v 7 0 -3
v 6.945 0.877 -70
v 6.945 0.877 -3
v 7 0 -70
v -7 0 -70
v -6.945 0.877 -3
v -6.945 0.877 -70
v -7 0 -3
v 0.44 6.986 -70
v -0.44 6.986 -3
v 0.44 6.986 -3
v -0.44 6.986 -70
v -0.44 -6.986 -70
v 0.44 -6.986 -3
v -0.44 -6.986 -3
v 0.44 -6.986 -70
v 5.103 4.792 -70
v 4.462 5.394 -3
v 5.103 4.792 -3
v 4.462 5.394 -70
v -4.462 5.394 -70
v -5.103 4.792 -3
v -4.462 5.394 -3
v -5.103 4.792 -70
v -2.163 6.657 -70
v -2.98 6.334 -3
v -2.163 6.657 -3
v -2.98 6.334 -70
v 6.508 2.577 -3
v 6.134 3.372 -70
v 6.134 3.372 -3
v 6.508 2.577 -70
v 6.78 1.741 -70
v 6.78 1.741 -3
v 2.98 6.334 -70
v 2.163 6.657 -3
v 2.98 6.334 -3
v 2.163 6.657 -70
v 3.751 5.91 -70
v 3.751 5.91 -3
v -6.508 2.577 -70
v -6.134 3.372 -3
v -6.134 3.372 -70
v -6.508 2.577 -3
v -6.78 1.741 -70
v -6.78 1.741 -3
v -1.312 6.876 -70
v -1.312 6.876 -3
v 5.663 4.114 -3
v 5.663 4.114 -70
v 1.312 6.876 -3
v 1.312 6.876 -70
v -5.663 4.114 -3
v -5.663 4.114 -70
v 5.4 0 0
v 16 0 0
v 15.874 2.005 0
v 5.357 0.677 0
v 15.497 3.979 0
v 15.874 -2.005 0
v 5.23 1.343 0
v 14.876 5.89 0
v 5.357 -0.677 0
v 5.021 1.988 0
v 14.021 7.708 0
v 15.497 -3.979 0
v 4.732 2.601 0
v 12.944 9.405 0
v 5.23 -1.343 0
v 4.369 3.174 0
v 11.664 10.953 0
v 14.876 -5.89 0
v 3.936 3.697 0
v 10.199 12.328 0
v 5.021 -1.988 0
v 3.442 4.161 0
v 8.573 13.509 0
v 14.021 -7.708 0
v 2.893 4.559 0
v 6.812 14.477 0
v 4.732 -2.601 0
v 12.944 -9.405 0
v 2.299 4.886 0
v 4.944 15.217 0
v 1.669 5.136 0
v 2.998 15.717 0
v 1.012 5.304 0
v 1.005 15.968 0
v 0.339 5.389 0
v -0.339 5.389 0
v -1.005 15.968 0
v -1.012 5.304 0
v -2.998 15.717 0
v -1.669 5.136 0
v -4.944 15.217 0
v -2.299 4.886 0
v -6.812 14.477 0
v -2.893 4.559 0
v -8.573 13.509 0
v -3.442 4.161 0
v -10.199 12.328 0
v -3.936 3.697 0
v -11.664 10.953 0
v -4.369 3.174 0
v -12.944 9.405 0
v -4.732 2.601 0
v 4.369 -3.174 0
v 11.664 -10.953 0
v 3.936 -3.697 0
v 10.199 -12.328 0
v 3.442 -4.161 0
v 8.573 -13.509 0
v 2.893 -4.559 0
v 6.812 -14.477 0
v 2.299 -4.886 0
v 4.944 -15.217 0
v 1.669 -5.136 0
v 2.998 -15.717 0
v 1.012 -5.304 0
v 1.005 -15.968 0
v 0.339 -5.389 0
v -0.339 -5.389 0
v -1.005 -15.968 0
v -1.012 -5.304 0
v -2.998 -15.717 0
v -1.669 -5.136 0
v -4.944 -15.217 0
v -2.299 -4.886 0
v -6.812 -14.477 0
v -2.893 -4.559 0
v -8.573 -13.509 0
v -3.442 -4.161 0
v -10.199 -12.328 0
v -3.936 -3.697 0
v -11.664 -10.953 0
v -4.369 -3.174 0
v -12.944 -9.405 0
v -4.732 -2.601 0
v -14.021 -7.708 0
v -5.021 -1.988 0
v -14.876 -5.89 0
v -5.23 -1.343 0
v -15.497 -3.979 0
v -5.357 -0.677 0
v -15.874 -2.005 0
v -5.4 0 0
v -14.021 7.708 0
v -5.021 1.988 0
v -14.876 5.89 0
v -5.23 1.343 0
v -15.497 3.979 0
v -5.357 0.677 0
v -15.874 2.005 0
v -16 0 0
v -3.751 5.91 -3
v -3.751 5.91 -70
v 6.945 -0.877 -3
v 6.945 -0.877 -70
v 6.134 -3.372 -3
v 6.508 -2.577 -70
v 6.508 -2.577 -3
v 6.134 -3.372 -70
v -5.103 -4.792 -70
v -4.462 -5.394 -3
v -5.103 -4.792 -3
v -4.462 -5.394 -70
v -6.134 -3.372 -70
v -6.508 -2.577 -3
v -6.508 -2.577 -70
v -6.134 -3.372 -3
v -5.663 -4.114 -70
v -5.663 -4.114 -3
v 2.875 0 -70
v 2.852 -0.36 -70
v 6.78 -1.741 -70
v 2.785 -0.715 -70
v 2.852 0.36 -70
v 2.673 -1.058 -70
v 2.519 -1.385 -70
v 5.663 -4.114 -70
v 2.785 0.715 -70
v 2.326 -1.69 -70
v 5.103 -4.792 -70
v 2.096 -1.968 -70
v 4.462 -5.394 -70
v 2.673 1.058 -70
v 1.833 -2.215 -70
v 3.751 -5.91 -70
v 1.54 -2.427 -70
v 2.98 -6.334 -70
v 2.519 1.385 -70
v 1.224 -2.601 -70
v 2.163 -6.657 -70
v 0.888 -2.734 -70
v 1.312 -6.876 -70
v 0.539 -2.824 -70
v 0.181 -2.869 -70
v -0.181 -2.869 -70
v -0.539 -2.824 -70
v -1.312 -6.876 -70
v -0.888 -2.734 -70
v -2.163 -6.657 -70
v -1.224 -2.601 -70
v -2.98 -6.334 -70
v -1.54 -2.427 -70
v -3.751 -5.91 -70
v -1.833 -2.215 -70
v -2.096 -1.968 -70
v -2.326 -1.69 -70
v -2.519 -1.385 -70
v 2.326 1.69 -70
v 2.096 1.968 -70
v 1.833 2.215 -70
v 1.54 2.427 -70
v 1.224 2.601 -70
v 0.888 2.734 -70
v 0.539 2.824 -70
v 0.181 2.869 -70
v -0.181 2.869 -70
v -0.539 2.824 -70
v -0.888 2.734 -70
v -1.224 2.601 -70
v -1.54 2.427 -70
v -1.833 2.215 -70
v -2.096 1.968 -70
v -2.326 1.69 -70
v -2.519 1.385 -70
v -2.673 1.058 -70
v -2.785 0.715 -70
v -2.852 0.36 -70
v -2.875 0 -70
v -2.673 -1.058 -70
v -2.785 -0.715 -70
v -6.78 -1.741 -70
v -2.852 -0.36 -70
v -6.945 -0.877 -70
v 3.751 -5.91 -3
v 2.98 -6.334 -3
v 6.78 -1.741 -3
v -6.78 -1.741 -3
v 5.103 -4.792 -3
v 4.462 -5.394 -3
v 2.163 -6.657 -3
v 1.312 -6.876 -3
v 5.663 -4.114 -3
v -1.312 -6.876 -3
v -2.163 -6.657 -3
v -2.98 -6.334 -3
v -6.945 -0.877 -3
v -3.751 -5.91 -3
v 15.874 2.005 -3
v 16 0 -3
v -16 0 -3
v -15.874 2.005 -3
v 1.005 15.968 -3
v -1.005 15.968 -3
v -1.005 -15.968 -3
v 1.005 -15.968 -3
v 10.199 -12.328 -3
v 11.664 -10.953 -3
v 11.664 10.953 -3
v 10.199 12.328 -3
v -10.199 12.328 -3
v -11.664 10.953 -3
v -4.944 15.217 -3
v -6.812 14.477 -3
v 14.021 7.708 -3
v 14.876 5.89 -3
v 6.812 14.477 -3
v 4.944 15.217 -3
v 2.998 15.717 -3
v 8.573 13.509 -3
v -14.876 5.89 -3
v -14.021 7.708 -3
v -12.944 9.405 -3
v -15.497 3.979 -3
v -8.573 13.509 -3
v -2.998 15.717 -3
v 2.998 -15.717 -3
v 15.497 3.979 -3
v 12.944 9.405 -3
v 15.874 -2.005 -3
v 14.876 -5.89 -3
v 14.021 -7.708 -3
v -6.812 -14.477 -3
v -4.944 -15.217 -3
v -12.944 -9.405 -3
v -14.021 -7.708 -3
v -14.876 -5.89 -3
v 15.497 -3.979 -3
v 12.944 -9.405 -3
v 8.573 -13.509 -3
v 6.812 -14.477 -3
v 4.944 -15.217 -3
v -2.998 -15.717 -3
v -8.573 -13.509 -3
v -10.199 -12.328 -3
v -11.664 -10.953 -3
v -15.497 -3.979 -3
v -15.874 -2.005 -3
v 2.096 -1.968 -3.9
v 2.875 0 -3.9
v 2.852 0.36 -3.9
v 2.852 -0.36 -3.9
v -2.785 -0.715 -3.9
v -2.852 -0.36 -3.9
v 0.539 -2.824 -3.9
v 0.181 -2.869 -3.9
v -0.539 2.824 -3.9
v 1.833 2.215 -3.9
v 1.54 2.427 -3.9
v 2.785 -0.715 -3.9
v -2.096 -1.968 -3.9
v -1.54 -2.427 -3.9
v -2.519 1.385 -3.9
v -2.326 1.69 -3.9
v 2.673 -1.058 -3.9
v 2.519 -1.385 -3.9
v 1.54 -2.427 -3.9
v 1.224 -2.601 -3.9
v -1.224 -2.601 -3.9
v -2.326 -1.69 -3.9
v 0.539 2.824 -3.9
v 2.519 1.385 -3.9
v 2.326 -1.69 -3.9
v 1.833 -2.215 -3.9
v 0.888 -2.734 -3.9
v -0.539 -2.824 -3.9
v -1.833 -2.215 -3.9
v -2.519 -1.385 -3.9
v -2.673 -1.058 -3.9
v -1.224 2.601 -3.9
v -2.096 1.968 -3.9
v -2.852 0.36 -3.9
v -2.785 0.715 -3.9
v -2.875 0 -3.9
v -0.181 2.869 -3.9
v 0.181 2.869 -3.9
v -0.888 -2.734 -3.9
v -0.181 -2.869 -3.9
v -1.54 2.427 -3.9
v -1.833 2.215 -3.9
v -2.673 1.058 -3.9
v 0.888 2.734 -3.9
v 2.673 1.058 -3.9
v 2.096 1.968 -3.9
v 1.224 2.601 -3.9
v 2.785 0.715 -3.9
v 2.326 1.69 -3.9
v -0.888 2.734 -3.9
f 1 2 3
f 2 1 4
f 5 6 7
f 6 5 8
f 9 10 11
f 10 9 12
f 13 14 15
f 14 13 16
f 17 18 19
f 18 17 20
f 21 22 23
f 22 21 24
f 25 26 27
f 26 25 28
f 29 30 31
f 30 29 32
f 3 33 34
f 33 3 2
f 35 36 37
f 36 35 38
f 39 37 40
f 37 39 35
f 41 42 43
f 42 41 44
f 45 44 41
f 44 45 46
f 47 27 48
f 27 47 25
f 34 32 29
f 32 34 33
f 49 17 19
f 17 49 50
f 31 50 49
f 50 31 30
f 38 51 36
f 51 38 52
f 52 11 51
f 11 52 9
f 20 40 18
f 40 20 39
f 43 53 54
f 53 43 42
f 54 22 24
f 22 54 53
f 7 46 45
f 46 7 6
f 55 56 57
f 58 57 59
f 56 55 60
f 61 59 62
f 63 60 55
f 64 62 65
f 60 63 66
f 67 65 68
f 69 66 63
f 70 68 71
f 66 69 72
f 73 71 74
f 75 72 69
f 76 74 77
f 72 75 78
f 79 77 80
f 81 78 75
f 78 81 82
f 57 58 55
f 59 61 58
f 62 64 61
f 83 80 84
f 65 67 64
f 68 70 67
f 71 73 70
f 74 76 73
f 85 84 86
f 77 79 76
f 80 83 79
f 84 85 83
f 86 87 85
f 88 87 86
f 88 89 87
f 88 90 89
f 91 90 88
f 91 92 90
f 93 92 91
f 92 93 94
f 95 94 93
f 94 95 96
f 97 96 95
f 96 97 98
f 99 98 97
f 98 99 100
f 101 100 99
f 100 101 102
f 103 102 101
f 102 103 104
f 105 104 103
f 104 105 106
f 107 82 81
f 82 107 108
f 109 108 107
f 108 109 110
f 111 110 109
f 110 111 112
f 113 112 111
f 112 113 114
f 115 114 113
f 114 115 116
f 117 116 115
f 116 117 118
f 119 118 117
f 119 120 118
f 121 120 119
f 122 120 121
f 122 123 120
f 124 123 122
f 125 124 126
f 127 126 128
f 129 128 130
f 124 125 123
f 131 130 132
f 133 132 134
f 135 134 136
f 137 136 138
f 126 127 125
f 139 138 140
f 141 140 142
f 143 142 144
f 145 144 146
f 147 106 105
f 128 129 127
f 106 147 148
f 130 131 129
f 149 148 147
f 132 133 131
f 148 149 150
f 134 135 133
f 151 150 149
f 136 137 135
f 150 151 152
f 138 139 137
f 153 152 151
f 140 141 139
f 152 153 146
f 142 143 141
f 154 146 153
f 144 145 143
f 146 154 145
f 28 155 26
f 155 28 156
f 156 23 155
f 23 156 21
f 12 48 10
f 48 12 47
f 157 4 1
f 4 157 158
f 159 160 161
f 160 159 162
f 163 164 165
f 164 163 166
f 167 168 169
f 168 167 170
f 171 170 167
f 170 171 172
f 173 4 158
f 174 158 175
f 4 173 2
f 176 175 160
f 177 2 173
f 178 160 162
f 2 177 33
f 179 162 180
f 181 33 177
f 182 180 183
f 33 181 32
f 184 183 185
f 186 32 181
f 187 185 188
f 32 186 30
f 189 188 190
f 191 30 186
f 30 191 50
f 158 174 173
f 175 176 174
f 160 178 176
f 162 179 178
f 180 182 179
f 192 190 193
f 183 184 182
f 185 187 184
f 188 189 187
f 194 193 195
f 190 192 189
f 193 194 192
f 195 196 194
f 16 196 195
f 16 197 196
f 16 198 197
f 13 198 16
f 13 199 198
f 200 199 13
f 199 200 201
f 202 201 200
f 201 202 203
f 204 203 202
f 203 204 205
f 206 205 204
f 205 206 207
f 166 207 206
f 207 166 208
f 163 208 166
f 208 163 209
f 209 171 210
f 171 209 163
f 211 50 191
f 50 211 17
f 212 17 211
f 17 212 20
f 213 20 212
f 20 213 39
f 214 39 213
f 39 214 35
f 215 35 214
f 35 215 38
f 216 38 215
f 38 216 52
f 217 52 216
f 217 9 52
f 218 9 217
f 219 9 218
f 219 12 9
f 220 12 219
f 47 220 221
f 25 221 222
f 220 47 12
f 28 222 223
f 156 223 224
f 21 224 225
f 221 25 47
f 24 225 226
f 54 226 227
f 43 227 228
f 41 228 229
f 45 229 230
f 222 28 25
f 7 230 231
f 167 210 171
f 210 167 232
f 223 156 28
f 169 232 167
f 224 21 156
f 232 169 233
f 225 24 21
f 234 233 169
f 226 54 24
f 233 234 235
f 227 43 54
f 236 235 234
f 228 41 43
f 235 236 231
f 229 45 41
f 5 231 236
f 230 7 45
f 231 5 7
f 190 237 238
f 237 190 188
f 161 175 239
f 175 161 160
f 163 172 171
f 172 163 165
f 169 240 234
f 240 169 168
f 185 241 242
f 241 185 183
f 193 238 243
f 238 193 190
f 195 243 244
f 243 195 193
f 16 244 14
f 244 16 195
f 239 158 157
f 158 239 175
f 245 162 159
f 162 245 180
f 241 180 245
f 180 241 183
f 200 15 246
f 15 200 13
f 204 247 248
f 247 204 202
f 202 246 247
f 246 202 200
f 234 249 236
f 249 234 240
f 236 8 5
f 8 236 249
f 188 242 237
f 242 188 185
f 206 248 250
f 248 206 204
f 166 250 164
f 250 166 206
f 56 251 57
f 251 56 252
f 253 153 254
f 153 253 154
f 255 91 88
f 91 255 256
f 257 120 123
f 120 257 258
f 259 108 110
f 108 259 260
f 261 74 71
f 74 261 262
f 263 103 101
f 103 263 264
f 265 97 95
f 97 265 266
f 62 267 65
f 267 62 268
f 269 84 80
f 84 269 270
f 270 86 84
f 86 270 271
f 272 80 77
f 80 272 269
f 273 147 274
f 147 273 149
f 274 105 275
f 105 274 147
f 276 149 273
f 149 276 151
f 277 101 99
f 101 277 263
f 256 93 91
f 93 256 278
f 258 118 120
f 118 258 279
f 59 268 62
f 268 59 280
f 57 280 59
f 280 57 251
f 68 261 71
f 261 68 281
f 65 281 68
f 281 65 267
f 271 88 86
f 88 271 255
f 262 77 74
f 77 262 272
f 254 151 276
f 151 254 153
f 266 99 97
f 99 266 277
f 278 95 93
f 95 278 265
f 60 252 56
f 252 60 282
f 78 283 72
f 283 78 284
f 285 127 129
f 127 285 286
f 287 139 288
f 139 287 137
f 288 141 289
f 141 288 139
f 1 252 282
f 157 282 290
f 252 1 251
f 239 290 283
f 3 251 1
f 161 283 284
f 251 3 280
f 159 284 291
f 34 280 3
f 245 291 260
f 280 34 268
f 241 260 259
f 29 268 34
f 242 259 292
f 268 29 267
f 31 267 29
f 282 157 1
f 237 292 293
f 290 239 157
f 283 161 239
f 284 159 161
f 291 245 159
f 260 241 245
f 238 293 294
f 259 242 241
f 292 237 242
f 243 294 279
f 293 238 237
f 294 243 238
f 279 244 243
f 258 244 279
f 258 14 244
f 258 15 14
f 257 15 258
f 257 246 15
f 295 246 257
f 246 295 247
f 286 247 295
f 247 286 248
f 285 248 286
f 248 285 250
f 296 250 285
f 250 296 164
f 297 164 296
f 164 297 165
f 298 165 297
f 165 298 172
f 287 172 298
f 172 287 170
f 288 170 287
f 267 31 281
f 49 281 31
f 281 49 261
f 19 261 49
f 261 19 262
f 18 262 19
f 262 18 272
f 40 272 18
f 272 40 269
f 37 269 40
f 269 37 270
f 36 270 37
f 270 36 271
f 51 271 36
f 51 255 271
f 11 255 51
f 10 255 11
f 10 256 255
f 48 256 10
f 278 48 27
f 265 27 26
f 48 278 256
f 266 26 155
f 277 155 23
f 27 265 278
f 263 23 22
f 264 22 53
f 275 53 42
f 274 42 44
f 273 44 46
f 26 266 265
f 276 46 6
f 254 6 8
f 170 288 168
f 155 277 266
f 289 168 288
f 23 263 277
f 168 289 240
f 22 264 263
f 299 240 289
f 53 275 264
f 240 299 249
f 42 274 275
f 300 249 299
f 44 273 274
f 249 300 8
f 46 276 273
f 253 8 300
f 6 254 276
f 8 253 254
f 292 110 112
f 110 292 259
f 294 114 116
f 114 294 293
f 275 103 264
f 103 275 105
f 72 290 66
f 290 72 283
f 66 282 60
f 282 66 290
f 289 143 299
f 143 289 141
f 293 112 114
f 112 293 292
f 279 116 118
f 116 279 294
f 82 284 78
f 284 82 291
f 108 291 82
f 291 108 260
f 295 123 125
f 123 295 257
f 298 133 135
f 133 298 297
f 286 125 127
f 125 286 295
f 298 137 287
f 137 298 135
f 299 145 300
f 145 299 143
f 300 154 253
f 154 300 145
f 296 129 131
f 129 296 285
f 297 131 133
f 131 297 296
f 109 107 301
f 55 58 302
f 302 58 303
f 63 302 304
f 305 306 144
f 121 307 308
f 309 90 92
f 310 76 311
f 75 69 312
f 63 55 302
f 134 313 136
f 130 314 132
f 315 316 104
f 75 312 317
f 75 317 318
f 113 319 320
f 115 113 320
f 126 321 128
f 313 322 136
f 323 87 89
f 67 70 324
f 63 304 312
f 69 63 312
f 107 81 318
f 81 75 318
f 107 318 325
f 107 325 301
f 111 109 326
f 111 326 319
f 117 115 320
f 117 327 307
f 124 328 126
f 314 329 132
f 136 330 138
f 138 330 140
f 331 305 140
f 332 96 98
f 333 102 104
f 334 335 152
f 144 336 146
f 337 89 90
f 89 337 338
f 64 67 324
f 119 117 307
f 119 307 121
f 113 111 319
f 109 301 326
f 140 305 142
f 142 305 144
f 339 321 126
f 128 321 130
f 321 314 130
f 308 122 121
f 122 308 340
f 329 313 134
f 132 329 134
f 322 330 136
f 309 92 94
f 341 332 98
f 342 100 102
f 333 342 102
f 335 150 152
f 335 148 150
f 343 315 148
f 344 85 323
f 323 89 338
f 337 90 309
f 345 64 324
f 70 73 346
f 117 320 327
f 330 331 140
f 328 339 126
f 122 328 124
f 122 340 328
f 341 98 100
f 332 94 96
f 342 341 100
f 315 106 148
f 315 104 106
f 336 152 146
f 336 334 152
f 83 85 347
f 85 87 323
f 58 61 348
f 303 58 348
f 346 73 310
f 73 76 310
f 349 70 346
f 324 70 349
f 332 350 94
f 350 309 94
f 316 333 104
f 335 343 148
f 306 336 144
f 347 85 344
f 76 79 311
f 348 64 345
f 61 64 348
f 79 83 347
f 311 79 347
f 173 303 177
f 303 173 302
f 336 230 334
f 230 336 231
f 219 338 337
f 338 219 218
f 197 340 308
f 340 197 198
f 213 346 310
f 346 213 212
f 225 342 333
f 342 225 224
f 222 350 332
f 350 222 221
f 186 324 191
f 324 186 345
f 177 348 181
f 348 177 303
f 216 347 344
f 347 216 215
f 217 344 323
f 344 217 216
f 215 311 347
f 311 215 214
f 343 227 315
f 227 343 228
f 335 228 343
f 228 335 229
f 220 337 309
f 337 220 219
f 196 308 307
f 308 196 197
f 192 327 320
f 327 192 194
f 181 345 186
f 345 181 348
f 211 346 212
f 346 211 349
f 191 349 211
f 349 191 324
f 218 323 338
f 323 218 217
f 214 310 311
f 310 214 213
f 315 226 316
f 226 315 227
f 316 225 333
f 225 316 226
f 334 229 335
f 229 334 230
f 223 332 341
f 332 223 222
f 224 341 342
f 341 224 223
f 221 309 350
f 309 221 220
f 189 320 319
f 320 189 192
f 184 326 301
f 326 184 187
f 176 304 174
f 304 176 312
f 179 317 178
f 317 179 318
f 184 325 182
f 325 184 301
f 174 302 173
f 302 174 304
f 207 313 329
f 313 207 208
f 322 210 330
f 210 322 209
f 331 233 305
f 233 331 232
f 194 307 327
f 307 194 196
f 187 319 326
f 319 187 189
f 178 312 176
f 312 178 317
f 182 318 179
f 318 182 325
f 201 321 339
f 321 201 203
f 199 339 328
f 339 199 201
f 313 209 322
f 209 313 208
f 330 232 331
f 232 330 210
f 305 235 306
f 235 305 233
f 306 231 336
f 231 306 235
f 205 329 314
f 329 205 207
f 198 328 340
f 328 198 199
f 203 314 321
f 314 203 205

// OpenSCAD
$fn = 50;


difference() {
	union() {
		translate(v = [0, 0, -70.0000000000]) {
			cylinder(h = 70, r = 7.0000000000);
		}
		translate(v = [0, 0, -3.0000000000]) {
			cylinder(h = 3, r = 16.0000000000);
		}
	}
	union() {
		translate(v = [0, 0, 0]) {
			rotate(a = [0, 0, 0]) {
				difference() {
					union() {
						#translate(v = [0, 0, -70.0000000000]) {
							cylinder(h = 70, r = 2.6000000000);
						}
						#translate(v = [0, 0, -3.9000000000]) {
							cylinder(h = 3.9000000000, r = 7.0000000000, r1 = 2.8750000000, r2 = 5.4000000000);
						}
						#translate(v = [0, 0, -70.0000000000]) {
							cylinder(h = 70, r = 2.8750000000);
						}
						#translate(v = [0, 0, -70.0000000000]) {
							cylinder(h = 70, r = 2.6000000000);
						}
					}
					union();
				}
			}
		}
	}
}
